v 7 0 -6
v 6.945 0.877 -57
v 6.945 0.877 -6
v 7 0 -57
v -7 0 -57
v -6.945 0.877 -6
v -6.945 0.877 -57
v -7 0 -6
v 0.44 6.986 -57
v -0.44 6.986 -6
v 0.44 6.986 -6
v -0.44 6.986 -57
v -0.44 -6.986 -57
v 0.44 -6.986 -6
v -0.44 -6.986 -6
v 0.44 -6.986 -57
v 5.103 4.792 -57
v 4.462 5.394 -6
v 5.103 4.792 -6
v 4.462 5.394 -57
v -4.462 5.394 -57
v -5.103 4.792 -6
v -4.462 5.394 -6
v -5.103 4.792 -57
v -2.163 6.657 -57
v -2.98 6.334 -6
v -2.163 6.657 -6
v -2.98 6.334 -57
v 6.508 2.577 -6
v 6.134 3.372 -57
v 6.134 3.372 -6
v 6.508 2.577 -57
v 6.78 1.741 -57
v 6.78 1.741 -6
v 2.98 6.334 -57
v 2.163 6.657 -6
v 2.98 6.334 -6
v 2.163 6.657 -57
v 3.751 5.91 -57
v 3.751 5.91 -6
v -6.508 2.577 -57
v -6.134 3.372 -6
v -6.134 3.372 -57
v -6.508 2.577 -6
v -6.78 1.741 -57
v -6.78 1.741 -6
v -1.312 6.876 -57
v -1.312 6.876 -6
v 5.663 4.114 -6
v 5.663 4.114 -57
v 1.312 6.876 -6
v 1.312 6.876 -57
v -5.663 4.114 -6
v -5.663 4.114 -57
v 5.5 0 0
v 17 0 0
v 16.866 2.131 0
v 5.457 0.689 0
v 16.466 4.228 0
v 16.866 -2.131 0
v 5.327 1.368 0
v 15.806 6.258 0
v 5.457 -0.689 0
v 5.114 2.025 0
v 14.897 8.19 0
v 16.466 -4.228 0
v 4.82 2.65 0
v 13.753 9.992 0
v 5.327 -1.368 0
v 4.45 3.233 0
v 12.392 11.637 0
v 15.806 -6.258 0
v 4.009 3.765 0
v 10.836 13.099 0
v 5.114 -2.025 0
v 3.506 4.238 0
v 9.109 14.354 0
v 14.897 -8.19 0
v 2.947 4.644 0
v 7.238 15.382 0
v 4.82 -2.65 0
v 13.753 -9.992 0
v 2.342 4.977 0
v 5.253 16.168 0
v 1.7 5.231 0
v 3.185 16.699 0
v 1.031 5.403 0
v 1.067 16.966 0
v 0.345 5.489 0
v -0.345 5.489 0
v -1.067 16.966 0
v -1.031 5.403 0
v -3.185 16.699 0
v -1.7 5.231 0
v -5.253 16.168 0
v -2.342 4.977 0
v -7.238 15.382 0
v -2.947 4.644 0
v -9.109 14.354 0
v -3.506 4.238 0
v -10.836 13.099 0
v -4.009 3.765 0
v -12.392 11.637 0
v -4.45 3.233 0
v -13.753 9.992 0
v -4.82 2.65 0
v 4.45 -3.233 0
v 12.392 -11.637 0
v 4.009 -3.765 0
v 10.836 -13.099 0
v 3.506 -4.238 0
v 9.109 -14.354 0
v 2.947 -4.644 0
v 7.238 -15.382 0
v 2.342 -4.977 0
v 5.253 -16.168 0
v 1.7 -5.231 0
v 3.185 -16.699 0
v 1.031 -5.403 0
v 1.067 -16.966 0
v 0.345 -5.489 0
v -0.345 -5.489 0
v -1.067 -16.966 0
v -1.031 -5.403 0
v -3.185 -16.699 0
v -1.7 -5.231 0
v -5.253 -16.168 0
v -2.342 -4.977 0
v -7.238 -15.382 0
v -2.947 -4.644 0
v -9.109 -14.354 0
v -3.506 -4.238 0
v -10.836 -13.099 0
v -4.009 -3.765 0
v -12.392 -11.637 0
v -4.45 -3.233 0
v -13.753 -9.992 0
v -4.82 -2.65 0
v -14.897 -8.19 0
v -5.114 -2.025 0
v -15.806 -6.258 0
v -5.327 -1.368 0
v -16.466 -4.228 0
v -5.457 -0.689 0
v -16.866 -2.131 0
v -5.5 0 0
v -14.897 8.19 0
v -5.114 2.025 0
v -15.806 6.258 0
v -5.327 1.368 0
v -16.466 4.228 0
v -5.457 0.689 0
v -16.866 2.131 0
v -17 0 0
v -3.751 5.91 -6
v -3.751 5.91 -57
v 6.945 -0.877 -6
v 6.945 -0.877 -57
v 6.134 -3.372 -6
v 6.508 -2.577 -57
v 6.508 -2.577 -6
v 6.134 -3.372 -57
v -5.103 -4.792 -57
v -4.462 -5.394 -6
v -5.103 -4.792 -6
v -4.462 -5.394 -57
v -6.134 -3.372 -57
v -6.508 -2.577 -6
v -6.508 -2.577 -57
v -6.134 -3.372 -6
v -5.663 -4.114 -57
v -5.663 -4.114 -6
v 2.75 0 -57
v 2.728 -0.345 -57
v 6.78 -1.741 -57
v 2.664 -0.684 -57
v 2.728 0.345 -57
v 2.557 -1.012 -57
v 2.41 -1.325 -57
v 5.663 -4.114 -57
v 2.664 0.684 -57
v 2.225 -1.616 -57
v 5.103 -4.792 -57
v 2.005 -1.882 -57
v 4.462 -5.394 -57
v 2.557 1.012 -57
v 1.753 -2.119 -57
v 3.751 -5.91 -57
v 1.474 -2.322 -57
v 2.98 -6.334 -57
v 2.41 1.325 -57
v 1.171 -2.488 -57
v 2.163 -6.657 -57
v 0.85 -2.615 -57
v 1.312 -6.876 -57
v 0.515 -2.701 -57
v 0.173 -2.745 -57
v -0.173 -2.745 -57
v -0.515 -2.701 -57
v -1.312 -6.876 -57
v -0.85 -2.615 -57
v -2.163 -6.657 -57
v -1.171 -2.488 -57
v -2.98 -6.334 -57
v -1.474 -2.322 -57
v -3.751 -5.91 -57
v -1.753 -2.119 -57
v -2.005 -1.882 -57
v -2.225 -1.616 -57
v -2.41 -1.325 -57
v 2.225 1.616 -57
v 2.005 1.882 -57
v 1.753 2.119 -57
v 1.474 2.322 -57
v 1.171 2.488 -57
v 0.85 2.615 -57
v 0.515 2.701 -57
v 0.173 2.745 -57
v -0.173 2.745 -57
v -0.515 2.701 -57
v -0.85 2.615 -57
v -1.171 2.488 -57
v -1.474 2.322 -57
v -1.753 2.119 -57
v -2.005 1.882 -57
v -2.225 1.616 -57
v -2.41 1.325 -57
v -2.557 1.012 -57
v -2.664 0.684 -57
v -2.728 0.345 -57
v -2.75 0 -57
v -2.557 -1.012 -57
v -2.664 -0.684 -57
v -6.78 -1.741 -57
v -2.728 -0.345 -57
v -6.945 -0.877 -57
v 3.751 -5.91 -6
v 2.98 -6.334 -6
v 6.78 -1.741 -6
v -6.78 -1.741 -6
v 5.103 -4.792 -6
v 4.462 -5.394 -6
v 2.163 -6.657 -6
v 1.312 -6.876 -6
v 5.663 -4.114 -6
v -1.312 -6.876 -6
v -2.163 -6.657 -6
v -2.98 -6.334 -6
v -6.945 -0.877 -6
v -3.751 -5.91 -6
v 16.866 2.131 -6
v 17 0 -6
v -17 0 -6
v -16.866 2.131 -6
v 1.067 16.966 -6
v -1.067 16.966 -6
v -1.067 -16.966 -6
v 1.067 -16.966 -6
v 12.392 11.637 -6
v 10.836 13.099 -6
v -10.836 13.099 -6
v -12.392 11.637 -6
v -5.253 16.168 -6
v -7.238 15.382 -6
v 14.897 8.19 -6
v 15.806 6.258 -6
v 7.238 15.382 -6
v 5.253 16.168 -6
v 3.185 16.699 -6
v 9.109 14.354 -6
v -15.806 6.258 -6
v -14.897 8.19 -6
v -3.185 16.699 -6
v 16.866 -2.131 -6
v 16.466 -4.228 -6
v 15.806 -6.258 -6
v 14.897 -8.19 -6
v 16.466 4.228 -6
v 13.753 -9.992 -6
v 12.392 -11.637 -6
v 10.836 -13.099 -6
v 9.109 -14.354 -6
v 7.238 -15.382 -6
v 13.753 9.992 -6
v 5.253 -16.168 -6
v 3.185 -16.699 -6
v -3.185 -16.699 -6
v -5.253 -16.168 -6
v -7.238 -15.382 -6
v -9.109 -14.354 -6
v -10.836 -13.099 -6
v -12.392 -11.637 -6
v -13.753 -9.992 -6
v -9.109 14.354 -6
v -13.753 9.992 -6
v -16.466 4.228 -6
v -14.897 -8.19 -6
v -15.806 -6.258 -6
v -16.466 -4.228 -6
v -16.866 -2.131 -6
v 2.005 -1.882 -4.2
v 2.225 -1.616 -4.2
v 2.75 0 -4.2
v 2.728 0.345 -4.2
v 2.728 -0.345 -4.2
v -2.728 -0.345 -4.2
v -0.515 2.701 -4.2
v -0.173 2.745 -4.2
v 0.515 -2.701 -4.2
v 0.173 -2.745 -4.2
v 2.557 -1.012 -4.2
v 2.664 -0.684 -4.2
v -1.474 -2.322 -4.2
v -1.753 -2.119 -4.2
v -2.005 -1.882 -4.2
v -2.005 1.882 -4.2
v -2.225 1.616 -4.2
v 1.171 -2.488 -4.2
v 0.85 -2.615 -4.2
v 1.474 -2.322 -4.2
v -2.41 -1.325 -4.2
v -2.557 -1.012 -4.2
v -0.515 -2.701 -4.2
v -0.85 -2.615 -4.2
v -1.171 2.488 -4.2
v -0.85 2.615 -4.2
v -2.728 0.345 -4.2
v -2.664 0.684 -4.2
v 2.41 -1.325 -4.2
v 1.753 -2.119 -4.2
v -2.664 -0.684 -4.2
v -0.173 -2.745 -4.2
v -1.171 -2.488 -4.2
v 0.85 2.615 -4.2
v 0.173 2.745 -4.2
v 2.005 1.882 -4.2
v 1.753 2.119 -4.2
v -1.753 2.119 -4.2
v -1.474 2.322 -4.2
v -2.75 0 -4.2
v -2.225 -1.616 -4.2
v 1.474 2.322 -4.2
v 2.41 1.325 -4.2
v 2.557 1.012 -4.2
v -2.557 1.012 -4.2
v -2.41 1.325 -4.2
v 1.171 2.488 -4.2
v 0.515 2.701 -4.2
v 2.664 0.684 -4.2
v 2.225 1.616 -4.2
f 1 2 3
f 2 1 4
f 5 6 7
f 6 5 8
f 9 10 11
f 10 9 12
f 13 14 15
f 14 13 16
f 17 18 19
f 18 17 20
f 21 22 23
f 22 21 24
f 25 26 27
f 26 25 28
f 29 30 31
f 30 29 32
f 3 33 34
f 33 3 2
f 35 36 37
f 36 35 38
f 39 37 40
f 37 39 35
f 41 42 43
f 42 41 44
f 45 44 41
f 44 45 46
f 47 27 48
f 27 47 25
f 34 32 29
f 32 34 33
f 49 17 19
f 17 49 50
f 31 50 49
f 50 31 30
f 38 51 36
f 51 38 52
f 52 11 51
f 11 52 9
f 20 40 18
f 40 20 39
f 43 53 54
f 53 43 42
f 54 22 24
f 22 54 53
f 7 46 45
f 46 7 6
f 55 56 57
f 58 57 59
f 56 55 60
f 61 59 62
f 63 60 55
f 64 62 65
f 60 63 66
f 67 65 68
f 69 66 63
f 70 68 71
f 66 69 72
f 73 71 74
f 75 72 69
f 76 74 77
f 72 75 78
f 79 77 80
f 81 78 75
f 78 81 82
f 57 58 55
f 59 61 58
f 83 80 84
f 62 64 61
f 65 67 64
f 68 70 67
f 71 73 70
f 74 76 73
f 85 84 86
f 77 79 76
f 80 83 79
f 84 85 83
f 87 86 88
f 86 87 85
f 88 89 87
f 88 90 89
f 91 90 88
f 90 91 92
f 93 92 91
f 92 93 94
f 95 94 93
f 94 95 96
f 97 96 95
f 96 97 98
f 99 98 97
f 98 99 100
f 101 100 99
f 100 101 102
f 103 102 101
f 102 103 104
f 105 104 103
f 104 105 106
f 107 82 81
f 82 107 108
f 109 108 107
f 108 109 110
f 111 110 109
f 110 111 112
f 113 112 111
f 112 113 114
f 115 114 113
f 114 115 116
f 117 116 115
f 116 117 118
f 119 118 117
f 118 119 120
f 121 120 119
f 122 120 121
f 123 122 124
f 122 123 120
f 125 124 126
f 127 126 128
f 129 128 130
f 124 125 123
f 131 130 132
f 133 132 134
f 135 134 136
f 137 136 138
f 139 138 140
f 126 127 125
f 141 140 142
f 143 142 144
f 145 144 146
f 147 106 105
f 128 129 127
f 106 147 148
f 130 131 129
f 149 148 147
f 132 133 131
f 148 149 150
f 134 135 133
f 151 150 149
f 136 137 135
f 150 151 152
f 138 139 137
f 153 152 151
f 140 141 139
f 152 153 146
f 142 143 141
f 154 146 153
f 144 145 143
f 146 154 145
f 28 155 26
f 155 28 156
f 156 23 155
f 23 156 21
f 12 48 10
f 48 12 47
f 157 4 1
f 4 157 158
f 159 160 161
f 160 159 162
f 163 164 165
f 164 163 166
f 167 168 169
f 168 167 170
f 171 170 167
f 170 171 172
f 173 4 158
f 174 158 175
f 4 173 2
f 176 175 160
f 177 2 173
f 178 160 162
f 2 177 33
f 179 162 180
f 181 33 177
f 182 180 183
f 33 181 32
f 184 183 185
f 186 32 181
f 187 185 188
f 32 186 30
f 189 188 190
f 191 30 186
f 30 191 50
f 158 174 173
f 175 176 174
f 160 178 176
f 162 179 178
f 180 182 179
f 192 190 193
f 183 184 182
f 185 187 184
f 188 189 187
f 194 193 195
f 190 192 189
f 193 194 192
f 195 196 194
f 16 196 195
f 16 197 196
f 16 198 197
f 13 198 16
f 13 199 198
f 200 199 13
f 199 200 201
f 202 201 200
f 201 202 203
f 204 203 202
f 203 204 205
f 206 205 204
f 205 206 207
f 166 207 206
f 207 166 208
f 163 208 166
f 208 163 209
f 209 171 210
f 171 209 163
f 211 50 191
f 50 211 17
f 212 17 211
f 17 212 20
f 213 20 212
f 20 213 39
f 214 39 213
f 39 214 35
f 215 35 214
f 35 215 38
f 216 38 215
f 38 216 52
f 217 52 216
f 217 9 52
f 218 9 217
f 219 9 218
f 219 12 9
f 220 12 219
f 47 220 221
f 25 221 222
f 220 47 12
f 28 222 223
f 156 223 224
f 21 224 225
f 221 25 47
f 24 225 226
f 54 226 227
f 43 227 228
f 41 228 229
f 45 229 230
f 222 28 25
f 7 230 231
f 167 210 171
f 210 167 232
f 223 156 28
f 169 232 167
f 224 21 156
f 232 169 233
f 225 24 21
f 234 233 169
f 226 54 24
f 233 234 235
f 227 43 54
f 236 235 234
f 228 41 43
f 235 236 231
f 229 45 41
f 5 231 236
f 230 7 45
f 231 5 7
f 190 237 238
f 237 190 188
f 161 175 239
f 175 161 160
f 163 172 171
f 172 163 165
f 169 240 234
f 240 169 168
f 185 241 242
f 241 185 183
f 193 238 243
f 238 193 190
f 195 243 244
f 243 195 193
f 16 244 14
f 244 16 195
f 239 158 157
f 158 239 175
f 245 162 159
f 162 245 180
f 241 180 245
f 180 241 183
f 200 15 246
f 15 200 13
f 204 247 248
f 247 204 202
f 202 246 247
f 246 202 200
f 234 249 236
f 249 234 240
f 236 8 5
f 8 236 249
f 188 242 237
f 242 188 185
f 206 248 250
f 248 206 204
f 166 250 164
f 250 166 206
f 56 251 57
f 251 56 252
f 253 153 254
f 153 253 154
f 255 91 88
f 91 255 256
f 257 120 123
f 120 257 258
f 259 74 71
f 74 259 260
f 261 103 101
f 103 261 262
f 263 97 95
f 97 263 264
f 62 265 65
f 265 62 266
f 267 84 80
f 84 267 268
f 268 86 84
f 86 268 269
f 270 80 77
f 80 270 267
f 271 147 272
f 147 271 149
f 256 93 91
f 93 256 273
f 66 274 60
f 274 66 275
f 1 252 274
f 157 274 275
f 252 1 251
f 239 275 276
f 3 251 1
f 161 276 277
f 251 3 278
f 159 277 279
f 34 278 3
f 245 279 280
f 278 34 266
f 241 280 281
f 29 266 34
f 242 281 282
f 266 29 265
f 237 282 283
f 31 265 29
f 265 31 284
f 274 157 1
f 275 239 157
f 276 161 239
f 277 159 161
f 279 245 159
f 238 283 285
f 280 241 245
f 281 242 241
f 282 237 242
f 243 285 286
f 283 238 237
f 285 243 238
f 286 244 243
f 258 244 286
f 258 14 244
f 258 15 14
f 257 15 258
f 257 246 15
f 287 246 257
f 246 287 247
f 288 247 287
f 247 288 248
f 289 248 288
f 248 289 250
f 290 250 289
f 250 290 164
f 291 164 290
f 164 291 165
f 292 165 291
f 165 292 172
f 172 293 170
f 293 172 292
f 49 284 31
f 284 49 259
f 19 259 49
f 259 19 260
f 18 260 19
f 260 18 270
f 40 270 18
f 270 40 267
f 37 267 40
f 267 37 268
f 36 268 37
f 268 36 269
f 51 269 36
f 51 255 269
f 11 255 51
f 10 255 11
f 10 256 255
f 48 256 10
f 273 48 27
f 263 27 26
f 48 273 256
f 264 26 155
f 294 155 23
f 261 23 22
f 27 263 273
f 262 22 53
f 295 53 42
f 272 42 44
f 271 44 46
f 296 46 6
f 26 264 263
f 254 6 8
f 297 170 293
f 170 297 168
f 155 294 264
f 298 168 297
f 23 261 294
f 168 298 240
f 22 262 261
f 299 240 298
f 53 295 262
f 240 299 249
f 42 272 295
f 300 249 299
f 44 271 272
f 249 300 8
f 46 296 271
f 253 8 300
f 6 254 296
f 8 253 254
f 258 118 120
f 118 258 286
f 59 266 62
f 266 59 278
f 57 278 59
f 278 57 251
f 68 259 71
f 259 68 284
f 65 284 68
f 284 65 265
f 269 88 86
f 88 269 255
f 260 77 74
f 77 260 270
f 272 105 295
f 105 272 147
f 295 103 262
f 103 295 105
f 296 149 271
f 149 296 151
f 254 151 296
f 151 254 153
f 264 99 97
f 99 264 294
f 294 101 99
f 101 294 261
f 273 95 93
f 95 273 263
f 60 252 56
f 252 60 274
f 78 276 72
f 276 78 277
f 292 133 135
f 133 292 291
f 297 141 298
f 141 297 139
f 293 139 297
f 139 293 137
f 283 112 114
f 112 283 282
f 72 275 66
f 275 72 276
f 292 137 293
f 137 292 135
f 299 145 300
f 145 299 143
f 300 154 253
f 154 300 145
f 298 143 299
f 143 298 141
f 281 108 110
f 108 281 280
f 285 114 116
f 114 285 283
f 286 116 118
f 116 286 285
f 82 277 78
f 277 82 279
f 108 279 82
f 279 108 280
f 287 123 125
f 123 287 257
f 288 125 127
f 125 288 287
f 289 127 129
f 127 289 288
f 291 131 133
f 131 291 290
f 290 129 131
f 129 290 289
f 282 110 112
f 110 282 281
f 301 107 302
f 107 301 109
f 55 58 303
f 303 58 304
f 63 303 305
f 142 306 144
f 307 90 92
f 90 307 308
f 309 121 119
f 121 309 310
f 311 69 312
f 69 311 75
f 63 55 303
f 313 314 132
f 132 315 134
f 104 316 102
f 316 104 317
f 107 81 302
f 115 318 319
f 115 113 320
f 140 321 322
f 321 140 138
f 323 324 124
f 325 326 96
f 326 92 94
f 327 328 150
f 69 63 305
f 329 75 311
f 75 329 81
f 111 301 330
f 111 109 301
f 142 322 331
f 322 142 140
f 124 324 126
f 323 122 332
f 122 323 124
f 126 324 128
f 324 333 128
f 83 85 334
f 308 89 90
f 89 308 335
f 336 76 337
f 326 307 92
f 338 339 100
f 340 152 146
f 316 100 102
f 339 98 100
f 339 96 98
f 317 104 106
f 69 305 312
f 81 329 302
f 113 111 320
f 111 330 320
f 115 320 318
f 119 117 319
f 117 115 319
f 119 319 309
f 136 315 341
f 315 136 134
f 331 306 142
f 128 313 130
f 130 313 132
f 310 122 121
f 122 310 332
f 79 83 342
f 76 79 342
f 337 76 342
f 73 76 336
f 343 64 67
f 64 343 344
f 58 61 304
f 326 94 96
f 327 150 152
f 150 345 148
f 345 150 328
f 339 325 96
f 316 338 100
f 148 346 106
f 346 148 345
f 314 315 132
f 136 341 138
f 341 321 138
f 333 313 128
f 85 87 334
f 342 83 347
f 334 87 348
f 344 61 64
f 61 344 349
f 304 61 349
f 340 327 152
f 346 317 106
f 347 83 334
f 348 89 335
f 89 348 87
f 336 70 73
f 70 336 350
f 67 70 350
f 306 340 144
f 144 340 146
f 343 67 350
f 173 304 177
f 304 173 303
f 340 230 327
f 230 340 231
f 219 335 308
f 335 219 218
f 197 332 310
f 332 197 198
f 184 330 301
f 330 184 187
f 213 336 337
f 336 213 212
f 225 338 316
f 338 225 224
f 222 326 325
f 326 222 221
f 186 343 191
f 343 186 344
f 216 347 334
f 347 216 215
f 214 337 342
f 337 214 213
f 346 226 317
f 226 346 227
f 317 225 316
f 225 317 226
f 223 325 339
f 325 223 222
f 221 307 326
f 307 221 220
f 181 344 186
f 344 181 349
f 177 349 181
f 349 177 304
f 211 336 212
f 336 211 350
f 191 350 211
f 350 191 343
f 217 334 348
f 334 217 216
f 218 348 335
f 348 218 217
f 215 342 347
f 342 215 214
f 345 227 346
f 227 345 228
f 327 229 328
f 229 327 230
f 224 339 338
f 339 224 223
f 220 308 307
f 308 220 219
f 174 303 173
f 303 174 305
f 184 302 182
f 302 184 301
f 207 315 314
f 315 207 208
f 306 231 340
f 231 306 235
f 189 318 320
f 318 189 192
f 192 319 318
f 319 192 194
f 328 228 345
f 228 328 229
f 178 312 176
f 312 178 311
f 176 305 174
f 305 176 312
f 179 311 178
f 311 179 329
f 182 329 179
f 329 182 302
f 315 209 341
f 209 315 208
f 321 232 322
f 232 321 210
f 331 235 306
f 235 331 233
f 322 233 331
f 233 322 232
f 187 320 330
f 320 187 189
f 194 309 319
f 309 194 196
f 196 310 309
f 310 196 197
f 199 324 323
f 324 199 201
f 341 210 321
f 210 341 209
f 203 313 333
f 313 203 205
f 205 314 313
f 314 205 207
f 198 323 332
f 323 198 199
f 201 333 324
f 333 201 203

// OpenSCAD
$fn = 50;


difference() {
	union() {
		translate(v = [0, 0, -57.0000000000]) {
			cylinder(h = 57, r = 7.0000000000);
		}
		translate(v = [0, 0, -6.0000000000]) {
			cylinder(h = 6, r = 17.0000000000);
		}
	}
	union() {
		translate(v = [0, 0, 0]) {
			rotate(a = [0, 0, 0]) {
				difference() {
					union() {
						#translate(v = [0, 0, -57.0000000000]) {
							cylinder(h = 57, r = 2.2500000000);
						}
						#translate(v = [0, 0, -4.2000000000]) {
							cylinder(h = 4.2000000000, r = 7.0000000000, r1 = 2.7500000000, r2 = 5.5000000000);
						}
						#translate(v = [0, 0, -57.0000000000]) {
							cylinder(h = 57, r = 2.7500000000);
						}
						#translate(v = [0, 0, -57.0000000000]) {
							cylinder(h = 57, r = 2.2500000000);
						}
					}
					union();
				}
			}
		}
	}
}
